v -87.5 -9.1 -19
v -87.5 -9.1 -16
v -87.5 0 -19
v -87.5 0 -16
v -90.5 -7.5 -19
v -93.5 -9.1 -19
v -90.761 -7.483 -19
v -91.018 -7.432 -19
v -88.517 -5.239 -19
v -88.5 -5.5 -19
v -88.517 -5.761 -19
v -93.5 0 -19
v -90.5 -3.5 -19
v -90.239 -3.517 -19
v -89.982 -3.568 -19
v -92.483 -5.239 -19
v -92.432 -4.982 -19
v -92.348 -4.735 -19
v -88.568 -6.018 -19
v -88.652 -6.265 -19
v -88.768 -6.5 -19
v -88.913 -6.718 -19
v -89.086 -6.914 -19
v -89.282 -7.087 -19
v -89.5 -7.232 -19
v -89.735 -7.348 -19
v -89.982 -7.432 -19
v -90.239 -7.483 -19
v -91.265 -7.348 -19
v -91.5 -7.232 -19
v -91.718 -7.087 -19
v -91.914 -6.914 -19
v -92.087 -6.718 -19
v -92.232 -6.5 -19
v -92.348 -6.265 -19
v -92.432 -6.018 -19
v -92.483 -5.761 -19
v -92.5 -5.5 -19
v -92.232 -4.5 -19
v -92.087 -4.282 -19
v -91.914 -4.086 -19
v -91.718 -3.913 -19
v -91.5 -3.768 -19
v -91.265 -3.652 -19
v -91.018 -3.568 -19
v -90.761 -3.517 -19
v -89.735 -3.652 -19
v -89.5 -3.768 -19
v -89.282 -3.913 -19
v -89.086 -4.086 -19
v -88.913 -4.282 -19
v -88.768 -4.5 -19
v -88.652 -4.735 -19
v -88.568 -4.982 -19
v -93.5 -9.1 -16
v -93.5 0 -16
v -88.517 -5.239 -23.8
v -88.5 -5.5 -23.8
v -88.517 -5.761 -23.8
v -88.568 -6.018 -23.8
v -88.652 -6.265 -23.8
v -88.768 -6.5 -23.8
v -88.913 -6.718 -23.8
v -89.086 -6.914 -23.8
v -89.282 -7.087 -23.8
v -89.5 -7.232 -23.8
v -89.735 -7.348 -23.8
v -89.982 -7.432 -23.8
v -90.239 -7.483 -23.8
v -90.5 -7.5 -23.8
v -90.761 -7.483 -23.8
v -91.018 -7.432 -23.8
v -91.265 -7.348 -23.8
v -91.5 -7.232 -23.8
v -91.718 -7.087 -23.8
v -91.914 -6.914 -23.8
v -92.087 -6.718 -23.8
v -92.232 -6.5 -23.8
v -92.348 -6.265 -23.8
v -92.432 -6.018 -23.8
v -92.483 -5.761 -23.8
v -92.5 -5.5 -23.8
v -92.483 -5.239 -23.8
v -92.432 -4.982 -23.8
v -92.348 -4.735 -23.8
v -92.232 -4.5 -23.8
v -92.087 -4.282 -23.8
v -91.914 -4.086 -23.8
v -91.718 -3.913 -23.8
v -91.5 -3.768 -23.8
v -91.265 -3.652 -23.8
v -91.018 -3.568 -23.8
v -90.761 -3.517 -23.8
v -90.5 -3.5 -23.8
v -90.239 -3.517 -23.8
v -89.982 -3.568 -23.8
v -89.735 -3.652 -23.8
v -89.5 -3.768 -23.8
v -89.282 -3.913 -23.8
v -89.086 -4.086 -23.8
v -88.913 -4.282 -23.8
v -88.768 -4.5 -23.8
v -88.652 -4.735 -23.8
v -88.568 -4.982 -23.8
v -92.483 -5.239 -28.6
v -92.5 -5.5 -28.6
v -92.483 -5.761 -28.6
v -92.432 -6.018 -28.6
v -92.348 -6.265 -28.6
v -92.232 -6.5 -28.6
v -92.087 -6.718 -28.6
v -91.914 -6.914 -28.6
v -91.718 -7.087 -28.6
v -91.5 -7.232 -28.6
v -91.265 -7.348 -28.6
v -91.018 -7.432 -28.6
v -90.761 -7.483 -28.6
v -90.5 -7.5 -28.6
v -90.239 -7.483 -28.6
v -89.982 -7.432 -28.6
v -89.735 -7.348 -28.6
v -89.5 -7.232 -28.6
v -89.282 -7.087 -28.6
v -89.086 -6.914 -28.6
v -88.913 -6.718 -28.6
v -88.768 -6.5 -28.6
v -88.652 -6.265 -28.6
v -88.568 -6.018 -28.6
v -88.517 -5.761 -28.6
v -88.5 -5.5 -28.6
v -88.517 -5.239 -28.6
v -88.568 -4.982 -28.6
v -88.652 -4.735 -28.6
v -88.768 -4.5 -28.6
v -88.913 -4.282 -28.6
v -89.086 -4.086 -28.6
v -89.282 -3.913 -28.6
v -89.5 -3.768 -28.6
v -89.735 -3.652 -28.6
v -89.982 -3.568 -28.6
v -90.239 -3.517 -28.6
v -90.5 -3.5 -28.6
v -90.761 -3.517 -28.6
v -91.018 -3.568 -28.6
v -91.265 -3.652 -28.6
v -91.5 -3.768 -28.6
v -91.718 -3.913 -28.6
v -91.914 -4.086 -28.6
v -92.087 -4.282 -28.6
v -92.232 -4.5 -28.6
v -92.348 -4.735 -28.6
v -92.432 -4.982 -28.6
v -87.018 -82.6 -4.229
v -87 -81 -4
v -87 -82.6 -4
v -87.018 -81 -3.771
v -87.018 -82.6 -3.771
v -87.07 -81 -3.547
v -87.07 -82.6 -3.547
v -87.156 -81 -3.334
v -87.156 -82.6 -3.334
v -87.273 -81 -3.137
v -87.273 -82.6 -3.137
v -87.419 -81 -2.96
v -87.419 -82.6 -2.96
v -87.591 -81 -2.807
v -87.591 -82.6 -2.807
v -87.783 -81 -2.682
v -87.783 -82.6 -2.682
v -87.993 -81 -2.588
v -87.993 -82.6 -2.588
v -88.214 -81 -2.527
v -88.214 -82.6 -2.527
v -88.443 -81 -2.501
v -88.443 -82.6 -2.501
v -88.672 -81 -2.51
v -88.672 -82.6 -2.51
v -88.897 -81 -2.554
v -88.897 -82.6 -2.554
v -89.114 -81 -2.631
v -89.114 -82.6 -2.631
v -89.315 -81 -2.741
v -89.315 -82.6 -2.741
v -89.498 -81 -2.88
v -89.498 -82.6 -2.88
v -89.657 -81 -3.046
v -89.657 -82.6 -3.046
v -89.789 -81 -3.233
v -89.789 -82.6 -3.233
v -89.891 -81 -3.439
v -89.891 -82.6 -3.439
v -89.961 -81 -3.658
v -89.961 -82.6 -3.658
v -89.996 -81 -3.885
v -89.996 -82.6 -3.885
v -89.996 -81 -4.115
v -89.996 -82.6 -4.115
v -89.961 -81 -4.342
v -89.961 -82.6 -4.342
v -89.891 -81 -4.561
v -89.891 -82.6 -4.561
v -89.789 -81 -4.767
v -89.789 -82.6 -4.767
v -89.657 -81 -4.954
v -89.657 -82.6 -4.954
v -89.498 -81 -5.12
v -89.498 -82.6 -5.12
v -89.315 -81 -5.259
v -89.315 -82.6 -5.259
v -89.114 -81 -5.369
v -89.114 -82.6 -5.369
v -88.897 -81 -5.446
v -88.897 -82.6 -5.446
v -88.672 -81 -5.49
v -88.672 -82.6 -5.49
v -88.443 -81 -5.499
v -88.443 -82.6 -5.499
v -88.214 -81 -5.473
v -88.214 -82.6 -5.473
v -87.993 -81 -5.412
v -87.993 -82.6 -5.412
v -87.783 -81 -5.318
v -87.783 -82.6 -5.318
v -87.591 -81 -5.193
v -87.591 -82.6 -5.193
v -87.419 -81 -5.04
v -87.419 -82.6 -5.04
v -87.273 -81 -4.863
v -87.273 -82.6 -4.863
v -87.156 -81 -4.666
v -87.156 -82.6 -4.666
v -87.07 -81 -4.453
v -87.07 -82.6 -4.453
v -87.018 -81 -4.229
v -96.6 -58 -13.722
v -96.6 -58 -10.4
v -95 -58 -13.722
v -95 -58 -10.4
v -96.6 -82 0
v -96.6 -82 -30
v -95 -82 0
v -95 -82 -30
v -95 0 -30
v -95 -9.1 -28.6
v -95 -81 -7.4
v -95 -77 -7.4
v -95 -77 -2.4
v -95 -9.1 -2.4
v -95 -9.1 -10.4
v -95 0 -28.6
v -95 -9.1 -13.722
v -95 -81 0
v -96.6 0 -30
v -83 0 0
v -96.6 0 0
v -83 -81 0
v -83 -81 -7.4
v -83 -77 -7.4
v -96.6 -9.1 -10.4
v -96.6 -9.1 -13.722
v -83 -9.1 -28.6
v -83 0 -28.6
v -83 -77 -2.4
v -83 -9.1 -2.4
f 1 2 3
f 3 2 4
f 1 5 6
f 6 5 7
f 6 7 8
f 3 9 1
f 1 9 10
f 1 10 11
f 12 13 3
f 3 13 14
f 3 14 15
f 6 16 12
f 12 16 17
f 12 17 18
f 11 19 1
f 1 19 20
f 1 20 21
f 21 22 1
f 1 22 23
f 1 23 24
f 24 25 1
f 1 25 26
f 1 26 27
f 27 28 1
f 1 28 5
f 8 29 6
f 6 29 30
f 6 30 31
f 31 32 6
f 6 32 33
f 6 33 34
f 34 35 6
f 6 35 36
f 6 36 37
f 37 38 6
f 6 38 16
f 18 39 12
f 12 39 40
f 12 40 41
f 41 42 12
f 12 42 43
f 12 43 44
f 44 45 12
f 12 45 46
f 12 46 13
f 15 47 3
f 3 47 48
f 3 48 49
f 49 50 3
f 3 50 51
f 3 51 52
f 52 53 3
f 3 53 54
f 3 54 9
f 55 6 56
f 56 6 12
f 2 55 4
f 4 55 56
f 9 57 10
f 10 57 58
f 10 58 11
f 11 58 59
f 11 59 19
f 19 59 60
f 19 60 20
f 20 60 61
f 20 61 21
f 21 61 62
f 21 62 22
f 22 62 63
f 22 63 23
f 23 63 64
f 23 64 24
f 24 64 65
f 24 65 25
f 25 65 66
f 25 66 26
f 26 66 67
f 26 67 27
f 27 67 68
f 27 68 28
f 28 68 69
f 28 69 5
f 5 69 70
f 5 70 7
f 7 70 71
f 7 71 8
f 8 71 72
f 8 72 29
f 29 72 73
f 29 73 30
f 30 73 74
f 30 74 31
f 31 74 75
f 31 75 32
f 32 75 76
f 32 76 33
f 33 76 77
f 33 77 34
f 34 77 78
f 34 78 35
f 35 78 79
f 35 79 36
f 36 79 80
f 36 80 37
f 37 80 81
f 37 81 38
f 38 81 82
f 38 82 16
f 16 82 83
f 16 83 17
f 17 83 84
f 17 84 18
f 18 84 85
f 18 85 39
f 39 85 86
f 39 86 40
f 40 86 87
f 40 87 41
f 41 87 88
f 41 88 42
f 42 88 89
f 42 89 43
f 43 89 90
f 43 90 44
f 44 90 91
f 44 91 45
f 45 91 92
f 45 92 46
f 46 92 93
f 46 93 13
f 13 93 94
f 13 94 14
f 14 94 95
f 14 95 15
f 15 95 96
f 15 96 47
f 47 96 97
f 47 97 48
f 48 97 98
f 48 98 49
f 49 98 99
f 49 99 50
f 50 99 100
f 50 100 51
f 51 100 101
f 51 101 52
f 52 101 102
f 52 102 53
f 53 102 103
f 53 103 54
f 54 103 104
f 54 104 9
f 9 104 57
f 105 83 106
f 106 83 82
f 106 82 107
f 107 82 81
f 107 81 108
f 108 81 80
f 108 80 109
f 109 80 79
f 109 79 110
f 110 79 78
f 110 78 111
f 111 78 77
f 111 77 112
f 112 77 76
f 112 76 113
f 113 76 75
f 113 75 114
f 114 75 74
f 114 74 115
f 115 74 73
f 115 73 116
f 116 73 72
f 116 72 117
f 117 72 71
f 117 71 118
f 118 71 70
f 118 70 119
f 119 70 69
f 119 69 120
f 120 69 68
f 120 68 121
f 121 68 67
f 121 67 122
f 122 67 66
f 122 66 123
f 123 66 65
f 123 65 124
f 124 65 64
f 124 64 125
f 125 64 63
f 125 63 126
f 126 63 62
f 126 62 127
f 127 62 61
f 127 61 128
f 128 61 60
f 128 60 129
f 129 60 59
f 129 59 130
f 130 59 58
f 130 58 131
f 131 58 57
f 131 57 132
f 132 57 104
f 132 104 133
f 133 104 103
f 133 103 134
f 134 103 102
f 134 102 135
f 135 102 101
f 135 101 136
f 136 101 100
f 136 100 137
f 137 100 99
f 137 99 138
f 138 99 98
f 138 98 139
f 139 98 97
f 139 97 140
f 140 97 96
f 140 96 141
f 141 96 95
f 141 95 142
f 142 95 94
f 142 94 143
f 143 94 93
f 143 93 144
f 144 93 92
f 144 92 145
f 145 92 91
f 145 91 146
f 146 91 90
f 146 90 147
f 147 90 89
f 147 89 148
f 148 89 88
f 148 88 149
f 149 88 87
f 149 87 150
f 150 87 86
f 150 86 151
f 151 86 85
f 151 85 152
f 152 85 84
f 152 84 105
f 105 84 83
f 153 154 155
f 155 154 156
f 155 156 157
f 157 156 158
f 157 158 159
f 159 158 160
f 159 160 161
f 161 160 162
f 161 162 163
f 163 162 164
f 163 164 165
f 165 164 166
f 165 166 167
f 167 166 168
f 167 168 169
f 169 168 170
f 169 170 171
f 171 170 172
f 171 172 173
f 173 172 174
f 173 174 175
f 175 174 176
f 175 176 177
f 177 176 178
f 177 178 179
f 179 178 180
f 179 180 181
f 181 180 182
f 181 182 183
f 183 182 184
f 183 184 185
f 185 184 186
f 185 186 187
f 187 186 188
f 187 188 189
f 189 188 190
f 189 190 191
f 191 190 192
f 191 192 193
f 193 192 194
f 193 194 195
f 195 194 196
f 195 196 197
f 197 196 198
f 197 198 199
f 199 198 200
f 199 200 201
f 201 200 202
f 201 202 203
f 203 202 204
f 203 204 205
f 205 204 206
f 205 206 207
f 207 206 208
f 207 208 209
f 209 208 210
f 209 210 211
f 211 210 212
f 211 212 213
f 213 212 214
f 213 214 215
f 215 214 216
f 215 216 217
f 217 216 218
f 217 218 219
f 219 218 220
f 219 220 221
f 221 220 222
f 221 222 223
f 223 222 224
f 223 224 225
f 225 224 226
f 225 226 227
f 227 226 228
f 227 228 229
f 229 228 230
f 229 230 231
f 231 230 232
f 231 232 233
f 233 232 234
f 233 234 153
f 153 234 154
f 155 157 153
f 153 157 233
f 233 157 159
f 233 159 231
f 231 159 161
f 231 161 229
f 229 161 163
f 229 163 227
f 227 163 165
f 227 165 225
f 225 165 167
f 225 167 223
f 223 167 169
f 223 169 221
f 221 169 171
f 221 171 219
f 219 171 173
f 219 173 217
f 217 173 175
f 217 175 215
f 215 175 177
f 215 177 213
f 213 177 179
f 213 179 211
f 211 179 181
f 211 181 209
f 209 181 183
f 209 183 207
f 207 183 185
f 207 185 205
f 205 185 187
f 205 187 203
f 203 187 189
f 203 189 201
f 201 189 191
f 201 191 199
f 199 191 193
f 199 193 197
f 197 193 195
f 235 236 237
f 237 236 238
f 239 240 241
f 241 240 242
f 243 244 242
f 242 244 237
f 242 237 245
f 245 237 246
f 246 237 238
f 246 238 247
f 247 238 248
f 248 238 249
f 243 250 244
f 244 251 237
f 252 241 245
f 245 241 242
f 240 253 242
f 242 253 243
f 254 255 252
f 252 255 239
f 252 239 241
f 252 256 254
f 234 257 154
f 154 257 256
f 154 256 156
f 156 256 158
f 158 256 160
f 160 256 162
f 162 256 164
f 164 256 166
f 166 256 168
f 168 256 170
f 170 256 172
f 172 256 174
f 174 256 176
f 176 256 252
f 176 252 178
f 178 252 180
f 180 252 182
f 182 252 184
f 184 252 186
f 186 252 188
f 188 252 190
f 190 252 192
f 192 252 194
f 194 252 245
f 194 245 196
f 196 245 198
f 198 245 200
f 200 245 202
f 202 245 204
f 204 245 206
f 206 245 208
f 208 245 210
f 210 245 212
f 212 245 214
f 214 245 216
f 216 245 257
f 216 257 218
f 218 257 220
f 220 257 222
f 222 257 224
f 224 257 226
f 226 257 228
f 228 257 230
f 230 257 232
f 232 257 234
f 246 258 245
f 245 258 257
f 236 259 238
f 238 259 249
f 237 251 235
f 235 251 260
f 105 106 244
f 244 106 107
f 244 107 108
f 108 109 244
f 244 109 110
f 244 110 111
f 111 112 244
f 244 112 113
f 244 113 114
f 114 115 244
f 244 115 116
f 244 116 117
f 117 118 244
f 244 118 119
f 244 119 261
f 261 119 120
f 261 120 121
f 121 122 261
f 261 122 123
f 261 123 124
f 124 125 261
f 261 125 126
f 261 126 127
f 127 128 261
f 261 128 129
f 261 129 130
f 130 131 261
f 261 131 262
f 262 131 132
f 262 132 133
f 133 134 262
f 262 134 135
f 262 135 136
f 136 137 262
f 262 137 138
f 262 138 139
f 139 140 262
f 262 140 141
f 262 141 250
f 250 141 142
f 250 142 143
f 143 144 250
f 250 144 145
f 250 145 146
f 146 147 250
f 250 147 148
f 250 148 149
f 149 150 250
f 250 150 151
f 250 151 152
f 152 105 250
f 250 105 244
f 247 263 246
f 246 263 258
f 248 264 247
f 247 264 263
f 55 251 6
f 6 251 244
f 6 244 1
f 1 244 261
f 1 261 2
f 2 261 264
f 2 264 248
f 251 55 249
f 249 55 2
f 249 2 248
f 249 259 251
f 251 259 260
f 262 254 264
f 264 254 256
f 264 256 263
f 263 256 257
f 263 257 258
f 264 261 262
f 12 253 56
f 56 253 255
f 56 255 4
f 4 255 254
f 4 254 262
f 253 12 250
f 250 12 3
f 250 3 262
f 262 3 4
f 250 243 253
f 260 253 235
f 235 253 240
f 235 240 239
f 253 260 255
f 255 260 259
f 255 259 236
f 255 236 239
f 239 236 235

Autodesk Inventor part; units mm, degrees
ref_plane "YZ Plane" through (0, 0, 0) normal (1, 0, 0) x (0, 1, 0)
ref_plane "XZ Plane" through (0, 0, 0) normal (0, 1, 0) x (-1, 0, 0)
ref_plane "XY Plane" through (0, 0, 0) normal (0, 0, 1) x (1, 0, 0)
ref_plane "Work Plane1" through (0, 0, 0) normal (0, 0, 1) x (1, 0, 0)
sketch "Sketch1" plane through (0, 0, 0) normal (0, 0, 1) x (1, 0, 0)
  line L0 (-83, -0.5) -> (-83, -81) projected
  line L1 (2, -82) -> (-93, -82) projected
  line L2 (-95, -2) -> (-95, -80) projected
  line L3 (-83, -81) -> (-96.6, -81)
  line L4 (-96.6, -81) -> (-96.6, 0)
  line L5 (-96.6, 0) -> (-83, 0)
  line L6 (-83, 0) -> (-83, -81)
  point P0 (0, 0)
  dimension "d0" = 1.6
extrude "Extrusion1" add sketch "Sketch1" against normal blind 2.4
sketch "Sketch2" plane through (0, 0, -2.4) normal (0, 0, -1) x (-1, 0, 0)
  line L0 (94, -9.5) -> (83, -9.5) projected
  line L1 (94, -57.961) -> (76.85, -57.961) projected
  line L2 (83, -81) -> (96.6, -81) projected
  line L3 (83, 0) -> (83, -81) projected
  line L4 (96.6, 0) -> (83, 0)
  line L5 (83, 0) -> (83, -9.1)
  line L6 (83, -9.1) -> (96.6, -9.1)
  line L7 (96.6, -9.1) -> (96.6, 0)
  point P0 (0, 0)
  dimension "d3" = 0.4
extrude "Extrusion2" add sketch "Sketch2" along normal blind 26.2
sketch "Sketch3" plane through (0, 0, -2.4) normal (0, 0, -1) x (-1, 0, 0)
  line L0 (96.6, -81) -> (96.6, -9.1) projected
  line L1 (83, -81) -> (96.6, -81)
  line L2 (96.6, -81) -> (96.6, -77)
  line L3 (96.6, -77) -> (83, -77)
  line L4 (83, -77) -> (83, -81)
  point P0 (0, 0)
  dimension "d6" = 4
extrude "Extrusion3" add sketch "Sketch3" along normal blind 5
sketch "Sketch4" plane through (-96.6, -81, 0) normal (-1, 0, 0) x (0, 0, 1)
  line L0 (-2.4, 71.9) -> (-2.4, 4) projected
  line L1 (-2.4, 71.9) -> (-10.4, 71.9)
  line L2 (-10.4, 71.9) -> (-10.4, 4)
  line L3 (-10.4, 4) -> (-2.4, 4)
  line L4 (-2.4, 4) -> (-2.4, 71.9)
  line L5 (-2.4, 4) -> (-7.4, 4) projected
  line L6 (-30, 1) -> (-30, 79) projected
  line L7 (-30, 71.9) -> (-13.7225, 71.9)
  line L8 (-13.7225, 71.9) -> (-13.7225, 4)
  line L9 (-13.7225, 4) -> (-30, 4)
  line L10 (-30, 4) -> (-30, 71.9)
  line L11 (-13.7225, 24.3406) -> (-13.7225, 32.8941) projected
  line L12 (-28.6, 71.9) -> (-30, 71.9)
  line L13 (-30, 71.9) -> (-30, 81)
  line L14 (-30, 81) -> (-28.6, 81)
  line L15 (-28.6, 81) -> (-28.6, 71.9)
  point P0 (0, 81)
  dimension "d9" = 8
extrude "Extrusion4" add sketch "Sketch4" against normal blind 1.6
sketch "Sketch5" plane through (-96.6, -81, 0) normal (-1, 0, 0) x (0, 0, 1)
  line L0 (-19.219, 23) -> (-0.5, 23) projected
  line L1 (-2, -1) -> (-28, -1) projected
  line L2 (-30, 81) -> (-30, 4) projected
  line L3 (0, 81) -> (0, 0) projected
  line L4 (0, 23) -> (-30, 23)
  line L5 (-30, 23) -> (-30, -1)
  line L6 (-30, -1) -> (0, -1)
  line L7 (0, -1) -> (0, 23)
  point P0 (-0.5, 23)
  point P1 (-28, -1)
extrude "Extrusion5" add sketch "Sketch5" against normal blind 1.6
sketch "Sketch6" plane through (-83, -81, -7.4) normal (0, -1, 0) x (1, 0, 0)
  circle A0 centre (-5.5, 3.4) radius 1.75 projected
  circle A1 centre (-5.5, 3.4) radius 1.5
  point P0 (83, 7.4)
  dimension "d14" = 3
extrude "Extrusion6" add sketch "Sketch6" along normal blind 1.6 contours A1
sketch "Sketch7" plane through (0, 0, -28.6) normal (0, 0, -1) x (-1, 0, 0)
  circle A0 centre (90.5, -5.5) radius 1.75 projected
  circle A1 centre (90.5, -5.5) radius 2
  point P0 (0, 0)
  dimension "d17" = 4
extrude "Extrusion7" cut sketch "Sketch7" against normal blind 12 contours A0 | A1
sketch "Sketch9" plane through (-96.6, 0, 0) normal (0, 1, 0) x (1, 0, 0)
  line L0 (3.1, 16) -> (9.1, 16)
  line L1 (9.1, 16) -> (9.1, 19)
  line L2 (9.1, 19) -> (3.1, 19)
  line L3 (3.1, 19) -> (3.1, 16)
  line L4 (0, 30) -> (1.6, 30) projected
  line L5 (4.1, 28.6) -> (4.1, 16.6) projected
  line L6 (8.1, 28.6) -> (8.1, 16.6) projected
  line L7 (6.1, 36) -> (6.1, -6) projected
  point P0 (96.6, 0)
  dimension "d23" = 3
  dimension "d24" = 6
  dimension "d25" = 11
  dimension "d26" = 3
extrude "Extrusion8" cut sketch "Sketch9" against normal through all
properties part number "Main"
